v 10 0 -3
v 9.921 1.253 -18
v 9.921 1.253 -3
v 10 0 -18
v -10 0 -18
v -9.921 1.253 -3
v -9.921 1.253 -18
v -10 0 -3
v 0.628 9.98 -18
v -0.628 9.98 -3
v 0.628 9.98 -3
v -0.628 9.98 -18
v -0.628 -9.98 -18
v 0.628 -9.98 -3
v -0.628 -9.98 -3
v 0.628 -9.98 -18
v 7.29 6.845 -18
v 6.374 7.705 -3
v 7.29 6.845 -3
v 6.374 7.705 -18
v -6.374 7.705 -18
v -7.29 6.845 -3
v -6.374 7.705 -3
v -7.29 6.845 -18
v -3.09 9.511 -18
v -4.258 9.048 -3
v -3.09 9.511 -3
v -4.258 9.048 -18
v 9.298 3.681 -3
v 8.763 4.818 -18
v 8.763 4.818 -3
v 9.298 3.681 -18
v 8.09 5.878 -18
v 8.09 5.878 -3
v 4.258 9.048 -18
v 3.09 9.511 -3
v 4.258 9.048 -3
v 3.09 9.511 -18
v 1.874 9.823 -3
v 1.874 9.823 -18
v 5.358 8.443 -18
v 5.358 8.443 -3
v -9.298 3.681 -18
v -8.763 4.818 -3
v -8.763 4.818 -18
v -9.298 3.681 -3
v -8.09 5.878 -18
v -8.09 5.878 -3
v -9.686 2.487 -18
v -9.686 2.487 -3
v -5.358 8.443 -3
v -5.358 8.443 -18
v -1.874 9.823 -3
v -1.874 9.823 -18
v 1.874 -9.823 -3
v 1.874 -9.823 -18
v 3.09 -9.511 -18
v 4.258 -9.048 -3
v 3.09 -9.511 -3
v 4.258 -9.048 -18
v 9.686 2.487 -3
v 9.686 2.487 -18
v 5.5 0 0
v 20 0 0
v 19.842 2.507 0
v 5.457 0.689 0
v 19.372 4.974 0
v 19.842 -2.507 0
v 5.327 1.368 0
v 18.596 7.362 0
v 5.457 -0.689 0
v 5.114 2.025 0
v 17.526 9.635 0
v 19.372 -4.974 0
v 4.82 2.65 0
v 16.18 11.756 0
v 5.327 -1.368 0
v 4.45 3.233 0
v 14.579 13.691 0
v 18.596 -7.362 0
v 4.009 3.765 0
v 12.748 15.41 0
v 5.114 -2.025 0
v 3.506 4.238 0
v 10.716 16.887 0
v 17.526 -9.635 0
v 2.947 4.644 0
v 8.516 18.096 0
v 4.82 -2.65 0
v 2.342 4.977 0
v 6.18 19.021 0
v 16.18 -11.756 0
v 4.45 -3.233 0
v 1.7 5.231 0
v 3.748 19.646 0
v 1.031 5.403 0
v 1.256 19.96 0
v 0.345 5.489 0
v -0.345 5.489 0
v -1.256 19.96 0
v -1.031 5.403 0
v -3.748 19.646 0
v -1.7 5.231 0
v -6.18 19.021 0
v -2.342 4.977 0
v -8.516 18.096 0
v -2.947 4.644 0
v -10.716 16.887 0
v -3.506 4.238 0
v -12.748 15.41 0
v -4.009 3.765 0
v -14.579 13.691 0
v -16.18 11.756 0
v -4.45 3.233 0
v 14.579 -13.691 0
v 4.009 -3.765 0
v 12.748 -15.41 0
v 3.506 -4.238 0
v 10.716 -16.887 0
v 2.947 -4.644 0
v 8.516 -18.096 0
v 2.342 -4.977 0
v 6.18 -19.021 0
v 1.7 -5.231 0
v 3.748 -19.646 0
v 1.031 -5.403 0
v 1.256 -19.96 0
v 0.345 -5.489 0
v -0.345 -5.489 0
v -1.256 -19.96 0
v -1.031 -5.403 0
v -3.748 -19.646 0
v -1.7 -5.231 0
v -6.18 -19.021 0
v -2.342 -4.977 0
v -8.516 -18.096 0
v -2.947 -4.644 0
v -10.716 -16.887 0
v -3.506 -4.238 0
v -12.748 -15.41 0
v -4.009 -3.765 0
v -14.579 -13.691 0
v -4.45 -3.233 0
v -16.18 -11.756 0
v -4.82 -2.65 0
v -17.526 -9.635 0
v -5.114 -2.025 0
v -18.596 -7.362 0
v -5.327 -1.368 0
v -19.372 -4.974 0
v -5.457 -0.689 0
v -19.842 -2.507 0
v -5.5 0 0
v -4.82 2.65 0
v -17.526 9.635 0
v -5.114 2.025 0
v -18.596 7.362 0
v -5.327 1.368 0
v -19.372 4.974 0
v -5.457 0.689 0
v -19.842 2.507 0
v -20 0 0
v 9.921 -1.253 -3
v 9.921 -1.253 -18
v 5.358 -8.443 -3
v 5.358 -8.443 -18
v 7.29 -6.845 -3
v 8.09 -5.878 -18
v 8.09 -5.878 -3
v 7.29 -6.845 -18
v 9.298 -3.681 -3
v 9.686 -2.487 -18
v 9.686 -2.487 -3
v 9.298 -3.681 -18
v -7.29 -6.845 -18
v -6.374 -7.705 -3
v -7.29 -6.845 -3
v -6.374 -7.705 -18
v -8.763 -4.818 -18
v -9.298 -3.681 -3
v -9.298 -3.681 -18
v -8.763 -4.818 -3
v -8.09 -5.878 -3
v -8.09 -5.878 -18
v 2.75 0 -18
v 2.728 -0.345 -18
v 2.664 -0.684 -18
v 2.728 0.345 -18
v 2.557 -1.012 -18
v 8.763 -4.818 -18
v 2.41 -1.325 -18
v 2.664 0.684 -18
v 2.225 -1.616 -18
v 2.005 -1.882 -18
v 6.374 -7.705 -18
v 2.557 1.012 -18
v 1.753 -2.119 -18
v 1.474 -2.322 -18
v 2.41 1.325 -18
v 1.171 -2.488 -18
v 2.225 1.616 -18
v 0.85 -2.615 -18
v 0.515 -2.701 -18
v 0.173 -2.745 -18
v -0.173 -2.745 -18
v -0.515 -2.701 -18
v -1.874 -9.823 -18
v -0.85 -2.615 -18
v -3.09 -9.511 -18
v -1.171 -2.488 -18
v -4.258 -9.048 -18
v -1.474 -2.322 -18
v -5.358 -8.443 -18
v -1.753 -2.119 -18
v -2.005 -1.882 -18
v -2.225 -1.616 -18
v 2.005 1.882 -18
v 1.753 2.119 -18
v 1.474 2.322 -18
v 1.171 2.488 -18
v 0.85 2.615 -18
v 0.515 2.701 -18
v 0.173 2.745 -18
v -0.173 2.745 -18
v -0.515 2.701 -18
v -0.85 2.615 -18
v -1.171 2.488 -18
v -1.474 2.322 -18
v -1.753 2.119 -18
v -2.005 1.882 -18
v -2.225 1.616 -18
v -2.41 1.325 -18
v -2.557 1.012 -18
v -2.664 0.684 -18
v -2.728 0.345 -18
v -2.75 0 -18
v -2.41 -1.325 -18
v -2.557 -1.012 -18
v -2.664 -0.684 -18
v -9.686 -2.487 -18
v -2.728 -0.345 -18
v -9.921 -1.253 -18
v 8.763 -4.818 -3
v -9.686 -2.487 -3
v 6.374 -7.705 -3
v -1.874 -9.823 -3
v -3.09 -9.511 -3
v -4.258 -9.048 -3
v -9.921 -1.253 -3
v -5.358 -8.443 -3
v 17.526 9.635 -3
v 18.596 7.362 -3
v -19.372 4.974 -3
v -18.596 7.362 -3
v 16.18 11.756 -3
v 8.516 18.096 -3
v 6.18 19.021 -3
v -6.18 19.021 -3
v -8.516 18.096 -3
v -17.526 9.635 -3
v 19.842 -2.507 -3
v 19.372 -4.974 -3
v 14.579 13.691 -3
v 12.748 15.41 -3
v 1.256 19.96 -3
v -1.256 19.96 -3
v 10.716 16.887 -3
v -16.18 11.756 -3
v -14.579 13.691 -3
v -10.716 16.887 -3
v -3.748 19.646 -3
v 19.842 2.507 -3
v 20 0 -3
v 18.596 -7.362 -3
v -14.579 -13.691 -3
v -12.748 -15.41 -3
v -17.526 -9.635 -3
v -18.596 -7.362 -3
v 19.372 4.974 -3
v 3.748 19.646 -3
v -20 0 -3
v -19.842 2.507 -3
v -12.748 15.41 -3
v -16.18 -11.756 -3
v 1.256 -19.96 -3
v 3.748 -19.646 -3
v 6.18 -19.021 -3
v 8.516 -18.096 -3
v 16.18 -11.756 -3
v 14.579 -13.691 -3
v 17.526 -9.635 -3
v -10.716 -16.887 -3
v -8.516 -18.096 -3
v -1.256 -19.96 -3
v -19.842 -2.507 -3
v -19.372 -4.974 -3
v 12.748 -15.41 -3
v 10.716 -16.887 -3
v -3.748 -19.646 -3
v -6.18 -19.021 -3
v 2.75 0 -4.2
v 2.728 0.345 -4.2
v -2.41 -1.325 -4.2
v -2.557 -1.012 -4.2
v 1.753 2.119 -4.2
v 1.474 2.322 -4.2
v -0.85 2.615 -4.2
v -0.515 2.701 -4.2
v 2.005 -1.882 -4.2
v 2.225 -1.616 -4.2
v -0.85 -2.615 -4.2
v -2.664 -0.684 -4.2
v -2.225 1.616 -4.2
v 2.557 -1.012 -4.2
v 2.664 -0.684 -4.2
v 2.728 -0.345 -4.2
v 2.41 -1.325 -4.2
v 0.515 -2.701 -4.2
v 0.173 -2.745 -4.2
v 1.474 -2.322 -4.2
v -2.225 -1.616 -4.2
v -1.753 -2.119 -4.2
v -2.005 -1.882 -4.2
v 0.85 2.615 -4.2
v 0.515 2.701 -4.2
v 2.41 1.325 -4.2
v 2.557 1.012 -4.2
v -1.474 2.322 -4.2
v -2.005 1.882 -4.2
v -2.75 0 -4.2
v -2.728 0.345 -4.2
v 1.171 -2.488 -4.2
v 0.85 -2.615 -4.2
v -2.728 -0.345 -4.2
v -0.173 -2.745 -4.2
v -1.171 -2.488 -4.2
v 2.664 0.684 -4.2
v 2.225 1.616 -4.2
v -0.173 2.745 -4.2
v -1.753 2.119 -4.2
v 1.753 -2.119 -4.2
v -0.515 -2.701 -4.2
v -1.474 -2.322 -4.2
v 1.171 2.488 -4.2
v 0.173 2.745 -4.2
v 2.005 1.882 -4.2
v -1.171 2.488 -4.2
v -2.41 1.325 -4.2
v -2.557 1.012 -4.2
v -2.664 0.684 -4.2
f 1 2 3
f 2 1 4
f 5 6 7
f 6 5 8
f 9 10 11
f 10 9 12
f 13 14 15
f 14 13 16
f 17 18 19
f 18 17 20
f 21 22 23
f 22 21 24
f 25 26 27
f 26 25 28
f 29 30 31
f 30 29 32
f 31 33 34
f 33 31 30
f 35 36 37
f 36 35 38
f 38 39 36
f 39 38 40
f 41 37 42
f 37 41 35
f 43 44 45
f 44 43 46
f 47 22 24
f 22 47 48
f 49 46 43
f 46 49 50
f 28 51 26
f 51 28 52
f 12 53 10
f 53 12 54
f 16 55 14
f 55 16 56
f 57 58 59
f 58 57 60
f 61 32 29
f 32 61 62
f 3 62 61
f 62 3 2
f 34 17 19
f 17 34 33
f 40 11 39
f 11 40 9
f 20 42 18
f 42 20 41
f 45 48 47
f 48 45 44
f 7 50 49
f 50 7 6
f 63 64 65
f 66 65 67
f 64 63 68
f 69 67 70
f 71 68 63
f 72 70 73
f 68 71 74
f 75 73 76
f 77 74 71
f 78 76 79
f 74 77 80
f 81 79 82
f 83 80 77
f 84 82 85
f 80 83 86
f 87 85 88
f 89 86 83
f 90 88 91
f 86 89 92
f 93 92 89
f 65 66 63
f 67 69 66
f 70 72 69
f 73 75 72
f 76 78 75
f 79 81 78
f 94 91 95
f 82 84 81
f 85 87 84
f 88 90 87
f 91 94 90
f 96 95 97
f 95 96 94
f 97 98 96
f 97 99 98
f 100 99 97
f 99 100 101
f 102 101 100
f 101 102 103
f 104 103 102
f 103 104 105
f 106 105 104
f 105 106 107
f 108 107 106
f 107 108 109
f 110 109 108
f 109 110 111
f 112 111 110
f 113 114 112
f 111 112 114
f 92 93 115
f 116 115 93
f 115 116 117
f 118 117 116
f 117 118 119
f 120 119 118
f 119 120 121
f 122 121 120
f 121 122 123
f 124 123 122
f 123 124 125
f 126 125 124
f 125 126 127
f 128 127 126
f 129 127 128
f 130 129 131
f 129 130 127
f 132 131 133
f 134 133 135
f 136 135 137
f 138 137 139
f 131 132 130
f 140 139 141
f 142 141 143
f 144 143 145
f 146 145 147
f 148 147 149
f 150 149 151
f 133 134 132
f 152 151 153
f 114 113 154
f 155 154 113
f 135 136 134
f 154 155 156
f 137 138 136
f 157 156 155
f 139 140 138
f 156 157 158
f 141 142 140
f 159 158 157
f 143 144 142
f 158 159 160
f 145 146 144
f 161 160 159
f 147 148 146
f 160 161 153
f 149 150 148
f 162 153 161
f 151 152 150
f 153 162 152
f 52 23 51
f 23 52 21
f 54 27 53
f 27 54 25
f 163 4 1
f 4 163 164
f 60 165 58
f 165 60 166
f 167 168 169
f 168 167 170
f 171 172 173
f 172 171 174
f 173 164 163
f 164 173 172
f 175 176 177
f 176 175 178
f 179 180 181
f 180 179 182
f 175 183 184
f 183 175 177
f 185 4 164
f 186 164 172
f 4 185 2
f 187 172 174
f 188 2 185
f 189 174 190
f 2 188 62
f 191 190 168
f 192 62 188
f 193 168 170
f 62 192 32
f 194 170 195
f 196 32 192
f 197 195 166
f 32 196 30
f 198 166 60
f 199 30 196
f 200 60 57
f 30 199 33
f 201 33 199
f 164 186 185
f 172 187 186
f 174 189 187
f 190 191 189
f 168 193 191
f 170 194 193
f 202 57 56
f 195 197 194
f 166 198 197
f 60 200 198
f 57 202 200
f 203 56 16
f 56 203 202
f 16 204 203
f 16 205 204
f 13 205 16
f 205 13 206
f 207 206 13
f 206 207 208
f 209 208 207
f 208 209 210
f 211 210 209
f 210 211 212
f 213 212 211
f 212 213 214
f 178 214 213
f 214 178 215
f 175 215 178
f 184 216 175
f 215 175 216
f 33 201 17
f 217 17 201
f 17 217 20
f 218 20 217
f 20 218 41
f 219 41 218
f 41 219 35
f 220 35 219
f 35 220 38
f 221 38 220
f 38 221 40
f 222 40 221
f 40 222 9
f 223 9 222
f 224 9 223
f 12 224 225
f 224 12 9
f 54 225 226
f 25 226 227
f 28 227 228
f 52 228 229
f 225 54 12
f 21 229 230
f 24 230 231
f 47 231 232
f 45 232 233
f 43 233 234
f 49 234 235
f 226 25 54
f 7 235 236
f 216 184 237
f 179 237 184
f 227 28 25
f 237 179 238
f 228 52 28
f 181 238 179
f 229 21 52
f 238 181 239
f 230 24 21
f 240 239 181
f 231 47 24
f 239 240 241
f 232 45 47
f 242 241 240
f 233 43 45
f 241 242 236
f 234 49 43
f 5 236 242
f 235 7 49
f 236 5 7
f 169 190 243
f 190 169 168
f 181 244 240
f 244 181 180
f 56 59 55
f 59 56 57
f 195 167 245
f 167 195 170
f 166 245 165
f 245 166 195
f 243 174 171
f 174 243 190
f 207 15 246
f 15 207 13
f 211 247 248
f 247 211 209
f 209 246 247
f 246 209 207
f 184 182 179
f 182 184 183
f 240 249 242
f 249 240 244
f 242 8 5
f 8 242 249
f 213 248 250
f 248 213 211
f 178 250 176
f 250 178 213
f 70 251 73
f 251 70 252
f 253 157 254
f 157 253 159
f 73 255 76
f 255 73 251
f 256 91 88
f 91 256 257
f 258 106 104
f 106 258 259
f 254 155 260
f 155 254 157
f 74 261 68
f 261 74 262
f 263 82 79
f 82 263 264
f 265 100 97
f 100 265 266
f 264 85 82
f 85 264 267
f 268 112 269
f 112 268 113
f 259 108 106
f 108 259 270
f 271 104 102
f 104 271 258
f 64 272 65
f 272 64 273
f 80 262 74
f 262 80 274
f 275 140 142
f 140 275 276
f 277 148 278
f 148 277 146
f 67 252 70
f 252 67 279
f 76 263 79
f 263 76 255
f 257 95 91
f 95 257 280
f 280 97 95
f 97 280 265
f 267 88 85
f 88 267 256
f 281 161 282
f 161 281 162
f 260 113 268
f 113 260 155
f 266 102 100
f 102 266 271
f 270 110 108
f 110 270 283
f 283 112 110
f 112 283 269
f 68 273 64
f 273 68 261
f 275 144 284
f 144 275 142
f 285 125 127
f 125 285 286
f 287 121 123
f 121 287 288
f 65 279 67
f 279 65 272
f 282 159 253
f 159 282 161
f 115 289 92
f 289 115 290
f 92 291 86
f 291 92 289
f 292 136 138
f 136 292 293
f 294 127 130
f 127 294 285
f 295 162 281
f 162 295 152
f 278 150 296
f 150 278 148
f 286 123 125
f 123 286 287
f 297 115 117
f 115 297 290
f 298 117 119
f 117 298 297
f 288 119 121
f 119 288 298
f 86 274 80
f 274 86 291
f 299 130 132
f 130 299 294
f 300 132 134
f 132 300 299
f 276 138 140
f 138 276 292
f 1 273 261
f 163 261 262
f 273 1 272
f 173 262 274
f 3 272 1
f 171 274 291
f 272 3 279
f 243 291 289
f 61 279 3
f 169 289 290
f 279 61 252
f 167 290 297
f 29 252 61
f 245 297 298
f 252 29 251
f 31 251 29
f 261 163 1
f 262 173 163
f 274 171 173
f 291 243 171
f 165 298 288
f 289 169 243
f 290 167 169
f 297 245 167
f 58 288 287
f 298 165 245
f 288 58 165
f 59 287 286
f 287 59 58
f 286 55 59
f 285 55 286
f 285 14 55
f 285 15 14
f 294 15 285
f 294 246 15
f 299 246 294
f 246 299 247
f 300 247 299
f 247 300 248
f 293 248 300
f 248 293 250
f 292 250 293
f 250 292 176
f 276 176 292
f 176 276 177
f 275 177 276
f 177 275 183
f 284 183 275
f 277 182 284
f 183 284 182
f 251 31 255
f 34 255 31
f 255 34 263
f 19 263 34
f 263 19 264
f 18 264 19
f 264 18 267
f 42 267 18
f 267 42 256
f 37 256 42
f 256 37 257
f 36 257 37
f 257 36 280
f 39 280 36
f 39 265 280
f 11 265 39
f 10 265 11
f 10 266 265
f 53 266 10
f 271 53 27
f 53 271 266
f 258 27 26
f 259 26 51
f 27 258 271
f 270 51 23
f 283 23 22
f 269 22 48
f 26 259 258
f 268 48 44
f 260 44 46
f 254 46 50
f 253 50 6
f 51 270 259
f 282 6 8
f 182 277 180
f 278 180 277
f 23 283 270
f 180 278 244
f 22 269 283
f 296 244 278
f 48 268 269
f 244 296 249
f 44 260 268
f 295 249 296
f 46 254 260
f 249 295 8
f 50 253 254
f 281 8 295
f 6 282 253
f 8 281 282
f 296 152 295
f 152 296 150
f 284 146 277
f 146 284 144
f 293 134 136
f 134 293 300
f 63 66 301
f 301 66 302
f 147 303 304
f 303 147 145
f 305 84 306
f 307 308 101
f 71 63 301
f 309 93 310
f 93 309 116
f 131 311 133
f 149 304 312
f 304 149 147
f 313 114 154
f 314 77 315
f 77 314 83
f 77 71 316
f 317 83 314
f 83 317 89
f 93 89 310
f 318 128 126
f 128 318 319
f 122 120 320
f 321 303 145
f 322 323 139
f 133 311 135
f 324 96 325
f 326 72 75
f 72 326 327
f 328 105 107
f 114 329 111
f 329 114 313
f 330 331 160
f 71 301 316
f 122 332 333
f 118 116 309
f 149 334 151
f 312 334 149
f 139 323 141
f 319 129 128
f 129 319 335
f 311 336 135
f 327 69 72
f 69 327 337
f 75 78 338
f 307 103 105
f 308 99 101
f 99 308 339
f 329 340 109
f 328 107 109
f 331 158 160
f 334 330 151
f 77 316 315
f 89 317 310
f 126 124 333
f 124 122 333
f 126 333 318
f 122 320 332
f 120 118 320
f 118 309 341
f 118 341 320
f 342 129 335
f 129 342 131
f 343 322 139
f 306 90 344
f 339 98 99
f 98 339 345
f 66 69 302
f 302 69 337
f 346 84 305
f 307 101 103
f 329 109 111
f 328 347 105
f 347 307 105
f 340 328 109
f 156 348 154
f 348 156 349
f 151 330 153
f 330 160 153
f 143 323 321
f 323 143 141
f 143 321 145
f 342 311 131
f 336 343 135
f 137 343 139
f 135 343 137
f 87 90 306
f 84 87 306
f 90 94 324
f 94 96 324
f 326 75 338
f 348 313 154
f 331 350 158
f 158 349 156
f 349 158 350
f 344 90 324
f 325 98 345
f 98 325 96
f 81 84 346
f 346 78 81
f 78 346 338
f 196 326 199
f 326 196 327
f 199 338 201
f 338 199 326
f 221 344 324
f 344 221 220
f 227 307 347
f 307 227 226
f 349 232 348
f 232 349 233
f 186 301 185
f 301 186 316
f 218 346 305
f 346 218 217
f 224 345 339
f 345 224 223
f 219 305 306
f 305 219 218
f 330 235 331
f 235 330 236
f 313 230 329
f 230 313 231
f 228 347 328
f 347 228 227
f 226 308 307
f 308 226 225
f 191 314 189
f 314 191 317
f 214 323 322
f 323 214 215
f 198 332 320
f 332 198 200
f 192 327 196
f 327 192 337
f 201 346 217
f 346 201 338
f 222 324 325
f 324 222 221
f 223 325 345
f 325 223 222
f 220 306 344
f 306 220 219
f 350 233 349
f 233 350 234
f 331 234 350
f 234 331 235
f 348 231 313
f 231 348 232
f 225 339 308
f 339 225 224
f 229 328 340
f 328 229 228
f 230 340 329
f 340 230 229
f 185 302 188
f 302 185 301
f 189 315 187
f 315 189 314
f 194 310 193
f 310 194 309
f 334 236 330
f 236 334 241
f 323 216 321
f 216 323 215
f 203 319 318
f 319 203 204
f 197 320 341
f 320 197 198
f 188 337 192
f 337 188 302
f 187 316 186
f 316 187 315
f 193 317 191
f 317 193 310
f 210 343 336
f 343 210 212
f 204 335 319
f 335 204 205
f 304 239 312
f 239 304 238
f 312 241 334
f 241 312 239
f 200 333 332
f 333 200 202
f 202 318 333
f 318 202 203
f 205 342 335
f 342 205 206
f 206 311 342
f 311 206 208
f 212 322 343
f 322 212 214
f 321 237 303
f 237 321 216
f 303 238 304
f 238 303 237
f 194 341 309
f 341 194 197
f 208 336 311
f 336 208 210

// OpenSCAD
$fn = 50;


difference() {
	union() {
		translate(v = [0, 0, -18.0000000000]) {
			cylinder(h = 18, r = 10.0000000000);
		}
		translate(v = [0, 0, -3.0000000000]) {
			cylinder(h = 3, r = 20.0000000000);
		}
	}
	union() {
		translate(v = [0, 0, 0]) {
			rotate(a = [0, 0, 0]) {
				difference() {
					union() {
						#translate(v = [0, 0, -18.0000000000]) {
							cylinder(h = 18, r = 2.2500000000);
						}
						#translate(v = [0, 0, -4.2000000000]) {
							cylinder(h = 4.2000000000, r1 = 2.7500000000, r2 = 5.5000000000);
						}
						#translate(v = [0, 0, -18.0000000000]) {
							cylinder(h = 18, r = 2.7500000000);
						}
						#translate(v = [0, 0, -18.0000000000]) {
							cylinder(h = 18, r = 2.2500000000);
						}
					}
					union();
				}
			}
		}
	}
}
